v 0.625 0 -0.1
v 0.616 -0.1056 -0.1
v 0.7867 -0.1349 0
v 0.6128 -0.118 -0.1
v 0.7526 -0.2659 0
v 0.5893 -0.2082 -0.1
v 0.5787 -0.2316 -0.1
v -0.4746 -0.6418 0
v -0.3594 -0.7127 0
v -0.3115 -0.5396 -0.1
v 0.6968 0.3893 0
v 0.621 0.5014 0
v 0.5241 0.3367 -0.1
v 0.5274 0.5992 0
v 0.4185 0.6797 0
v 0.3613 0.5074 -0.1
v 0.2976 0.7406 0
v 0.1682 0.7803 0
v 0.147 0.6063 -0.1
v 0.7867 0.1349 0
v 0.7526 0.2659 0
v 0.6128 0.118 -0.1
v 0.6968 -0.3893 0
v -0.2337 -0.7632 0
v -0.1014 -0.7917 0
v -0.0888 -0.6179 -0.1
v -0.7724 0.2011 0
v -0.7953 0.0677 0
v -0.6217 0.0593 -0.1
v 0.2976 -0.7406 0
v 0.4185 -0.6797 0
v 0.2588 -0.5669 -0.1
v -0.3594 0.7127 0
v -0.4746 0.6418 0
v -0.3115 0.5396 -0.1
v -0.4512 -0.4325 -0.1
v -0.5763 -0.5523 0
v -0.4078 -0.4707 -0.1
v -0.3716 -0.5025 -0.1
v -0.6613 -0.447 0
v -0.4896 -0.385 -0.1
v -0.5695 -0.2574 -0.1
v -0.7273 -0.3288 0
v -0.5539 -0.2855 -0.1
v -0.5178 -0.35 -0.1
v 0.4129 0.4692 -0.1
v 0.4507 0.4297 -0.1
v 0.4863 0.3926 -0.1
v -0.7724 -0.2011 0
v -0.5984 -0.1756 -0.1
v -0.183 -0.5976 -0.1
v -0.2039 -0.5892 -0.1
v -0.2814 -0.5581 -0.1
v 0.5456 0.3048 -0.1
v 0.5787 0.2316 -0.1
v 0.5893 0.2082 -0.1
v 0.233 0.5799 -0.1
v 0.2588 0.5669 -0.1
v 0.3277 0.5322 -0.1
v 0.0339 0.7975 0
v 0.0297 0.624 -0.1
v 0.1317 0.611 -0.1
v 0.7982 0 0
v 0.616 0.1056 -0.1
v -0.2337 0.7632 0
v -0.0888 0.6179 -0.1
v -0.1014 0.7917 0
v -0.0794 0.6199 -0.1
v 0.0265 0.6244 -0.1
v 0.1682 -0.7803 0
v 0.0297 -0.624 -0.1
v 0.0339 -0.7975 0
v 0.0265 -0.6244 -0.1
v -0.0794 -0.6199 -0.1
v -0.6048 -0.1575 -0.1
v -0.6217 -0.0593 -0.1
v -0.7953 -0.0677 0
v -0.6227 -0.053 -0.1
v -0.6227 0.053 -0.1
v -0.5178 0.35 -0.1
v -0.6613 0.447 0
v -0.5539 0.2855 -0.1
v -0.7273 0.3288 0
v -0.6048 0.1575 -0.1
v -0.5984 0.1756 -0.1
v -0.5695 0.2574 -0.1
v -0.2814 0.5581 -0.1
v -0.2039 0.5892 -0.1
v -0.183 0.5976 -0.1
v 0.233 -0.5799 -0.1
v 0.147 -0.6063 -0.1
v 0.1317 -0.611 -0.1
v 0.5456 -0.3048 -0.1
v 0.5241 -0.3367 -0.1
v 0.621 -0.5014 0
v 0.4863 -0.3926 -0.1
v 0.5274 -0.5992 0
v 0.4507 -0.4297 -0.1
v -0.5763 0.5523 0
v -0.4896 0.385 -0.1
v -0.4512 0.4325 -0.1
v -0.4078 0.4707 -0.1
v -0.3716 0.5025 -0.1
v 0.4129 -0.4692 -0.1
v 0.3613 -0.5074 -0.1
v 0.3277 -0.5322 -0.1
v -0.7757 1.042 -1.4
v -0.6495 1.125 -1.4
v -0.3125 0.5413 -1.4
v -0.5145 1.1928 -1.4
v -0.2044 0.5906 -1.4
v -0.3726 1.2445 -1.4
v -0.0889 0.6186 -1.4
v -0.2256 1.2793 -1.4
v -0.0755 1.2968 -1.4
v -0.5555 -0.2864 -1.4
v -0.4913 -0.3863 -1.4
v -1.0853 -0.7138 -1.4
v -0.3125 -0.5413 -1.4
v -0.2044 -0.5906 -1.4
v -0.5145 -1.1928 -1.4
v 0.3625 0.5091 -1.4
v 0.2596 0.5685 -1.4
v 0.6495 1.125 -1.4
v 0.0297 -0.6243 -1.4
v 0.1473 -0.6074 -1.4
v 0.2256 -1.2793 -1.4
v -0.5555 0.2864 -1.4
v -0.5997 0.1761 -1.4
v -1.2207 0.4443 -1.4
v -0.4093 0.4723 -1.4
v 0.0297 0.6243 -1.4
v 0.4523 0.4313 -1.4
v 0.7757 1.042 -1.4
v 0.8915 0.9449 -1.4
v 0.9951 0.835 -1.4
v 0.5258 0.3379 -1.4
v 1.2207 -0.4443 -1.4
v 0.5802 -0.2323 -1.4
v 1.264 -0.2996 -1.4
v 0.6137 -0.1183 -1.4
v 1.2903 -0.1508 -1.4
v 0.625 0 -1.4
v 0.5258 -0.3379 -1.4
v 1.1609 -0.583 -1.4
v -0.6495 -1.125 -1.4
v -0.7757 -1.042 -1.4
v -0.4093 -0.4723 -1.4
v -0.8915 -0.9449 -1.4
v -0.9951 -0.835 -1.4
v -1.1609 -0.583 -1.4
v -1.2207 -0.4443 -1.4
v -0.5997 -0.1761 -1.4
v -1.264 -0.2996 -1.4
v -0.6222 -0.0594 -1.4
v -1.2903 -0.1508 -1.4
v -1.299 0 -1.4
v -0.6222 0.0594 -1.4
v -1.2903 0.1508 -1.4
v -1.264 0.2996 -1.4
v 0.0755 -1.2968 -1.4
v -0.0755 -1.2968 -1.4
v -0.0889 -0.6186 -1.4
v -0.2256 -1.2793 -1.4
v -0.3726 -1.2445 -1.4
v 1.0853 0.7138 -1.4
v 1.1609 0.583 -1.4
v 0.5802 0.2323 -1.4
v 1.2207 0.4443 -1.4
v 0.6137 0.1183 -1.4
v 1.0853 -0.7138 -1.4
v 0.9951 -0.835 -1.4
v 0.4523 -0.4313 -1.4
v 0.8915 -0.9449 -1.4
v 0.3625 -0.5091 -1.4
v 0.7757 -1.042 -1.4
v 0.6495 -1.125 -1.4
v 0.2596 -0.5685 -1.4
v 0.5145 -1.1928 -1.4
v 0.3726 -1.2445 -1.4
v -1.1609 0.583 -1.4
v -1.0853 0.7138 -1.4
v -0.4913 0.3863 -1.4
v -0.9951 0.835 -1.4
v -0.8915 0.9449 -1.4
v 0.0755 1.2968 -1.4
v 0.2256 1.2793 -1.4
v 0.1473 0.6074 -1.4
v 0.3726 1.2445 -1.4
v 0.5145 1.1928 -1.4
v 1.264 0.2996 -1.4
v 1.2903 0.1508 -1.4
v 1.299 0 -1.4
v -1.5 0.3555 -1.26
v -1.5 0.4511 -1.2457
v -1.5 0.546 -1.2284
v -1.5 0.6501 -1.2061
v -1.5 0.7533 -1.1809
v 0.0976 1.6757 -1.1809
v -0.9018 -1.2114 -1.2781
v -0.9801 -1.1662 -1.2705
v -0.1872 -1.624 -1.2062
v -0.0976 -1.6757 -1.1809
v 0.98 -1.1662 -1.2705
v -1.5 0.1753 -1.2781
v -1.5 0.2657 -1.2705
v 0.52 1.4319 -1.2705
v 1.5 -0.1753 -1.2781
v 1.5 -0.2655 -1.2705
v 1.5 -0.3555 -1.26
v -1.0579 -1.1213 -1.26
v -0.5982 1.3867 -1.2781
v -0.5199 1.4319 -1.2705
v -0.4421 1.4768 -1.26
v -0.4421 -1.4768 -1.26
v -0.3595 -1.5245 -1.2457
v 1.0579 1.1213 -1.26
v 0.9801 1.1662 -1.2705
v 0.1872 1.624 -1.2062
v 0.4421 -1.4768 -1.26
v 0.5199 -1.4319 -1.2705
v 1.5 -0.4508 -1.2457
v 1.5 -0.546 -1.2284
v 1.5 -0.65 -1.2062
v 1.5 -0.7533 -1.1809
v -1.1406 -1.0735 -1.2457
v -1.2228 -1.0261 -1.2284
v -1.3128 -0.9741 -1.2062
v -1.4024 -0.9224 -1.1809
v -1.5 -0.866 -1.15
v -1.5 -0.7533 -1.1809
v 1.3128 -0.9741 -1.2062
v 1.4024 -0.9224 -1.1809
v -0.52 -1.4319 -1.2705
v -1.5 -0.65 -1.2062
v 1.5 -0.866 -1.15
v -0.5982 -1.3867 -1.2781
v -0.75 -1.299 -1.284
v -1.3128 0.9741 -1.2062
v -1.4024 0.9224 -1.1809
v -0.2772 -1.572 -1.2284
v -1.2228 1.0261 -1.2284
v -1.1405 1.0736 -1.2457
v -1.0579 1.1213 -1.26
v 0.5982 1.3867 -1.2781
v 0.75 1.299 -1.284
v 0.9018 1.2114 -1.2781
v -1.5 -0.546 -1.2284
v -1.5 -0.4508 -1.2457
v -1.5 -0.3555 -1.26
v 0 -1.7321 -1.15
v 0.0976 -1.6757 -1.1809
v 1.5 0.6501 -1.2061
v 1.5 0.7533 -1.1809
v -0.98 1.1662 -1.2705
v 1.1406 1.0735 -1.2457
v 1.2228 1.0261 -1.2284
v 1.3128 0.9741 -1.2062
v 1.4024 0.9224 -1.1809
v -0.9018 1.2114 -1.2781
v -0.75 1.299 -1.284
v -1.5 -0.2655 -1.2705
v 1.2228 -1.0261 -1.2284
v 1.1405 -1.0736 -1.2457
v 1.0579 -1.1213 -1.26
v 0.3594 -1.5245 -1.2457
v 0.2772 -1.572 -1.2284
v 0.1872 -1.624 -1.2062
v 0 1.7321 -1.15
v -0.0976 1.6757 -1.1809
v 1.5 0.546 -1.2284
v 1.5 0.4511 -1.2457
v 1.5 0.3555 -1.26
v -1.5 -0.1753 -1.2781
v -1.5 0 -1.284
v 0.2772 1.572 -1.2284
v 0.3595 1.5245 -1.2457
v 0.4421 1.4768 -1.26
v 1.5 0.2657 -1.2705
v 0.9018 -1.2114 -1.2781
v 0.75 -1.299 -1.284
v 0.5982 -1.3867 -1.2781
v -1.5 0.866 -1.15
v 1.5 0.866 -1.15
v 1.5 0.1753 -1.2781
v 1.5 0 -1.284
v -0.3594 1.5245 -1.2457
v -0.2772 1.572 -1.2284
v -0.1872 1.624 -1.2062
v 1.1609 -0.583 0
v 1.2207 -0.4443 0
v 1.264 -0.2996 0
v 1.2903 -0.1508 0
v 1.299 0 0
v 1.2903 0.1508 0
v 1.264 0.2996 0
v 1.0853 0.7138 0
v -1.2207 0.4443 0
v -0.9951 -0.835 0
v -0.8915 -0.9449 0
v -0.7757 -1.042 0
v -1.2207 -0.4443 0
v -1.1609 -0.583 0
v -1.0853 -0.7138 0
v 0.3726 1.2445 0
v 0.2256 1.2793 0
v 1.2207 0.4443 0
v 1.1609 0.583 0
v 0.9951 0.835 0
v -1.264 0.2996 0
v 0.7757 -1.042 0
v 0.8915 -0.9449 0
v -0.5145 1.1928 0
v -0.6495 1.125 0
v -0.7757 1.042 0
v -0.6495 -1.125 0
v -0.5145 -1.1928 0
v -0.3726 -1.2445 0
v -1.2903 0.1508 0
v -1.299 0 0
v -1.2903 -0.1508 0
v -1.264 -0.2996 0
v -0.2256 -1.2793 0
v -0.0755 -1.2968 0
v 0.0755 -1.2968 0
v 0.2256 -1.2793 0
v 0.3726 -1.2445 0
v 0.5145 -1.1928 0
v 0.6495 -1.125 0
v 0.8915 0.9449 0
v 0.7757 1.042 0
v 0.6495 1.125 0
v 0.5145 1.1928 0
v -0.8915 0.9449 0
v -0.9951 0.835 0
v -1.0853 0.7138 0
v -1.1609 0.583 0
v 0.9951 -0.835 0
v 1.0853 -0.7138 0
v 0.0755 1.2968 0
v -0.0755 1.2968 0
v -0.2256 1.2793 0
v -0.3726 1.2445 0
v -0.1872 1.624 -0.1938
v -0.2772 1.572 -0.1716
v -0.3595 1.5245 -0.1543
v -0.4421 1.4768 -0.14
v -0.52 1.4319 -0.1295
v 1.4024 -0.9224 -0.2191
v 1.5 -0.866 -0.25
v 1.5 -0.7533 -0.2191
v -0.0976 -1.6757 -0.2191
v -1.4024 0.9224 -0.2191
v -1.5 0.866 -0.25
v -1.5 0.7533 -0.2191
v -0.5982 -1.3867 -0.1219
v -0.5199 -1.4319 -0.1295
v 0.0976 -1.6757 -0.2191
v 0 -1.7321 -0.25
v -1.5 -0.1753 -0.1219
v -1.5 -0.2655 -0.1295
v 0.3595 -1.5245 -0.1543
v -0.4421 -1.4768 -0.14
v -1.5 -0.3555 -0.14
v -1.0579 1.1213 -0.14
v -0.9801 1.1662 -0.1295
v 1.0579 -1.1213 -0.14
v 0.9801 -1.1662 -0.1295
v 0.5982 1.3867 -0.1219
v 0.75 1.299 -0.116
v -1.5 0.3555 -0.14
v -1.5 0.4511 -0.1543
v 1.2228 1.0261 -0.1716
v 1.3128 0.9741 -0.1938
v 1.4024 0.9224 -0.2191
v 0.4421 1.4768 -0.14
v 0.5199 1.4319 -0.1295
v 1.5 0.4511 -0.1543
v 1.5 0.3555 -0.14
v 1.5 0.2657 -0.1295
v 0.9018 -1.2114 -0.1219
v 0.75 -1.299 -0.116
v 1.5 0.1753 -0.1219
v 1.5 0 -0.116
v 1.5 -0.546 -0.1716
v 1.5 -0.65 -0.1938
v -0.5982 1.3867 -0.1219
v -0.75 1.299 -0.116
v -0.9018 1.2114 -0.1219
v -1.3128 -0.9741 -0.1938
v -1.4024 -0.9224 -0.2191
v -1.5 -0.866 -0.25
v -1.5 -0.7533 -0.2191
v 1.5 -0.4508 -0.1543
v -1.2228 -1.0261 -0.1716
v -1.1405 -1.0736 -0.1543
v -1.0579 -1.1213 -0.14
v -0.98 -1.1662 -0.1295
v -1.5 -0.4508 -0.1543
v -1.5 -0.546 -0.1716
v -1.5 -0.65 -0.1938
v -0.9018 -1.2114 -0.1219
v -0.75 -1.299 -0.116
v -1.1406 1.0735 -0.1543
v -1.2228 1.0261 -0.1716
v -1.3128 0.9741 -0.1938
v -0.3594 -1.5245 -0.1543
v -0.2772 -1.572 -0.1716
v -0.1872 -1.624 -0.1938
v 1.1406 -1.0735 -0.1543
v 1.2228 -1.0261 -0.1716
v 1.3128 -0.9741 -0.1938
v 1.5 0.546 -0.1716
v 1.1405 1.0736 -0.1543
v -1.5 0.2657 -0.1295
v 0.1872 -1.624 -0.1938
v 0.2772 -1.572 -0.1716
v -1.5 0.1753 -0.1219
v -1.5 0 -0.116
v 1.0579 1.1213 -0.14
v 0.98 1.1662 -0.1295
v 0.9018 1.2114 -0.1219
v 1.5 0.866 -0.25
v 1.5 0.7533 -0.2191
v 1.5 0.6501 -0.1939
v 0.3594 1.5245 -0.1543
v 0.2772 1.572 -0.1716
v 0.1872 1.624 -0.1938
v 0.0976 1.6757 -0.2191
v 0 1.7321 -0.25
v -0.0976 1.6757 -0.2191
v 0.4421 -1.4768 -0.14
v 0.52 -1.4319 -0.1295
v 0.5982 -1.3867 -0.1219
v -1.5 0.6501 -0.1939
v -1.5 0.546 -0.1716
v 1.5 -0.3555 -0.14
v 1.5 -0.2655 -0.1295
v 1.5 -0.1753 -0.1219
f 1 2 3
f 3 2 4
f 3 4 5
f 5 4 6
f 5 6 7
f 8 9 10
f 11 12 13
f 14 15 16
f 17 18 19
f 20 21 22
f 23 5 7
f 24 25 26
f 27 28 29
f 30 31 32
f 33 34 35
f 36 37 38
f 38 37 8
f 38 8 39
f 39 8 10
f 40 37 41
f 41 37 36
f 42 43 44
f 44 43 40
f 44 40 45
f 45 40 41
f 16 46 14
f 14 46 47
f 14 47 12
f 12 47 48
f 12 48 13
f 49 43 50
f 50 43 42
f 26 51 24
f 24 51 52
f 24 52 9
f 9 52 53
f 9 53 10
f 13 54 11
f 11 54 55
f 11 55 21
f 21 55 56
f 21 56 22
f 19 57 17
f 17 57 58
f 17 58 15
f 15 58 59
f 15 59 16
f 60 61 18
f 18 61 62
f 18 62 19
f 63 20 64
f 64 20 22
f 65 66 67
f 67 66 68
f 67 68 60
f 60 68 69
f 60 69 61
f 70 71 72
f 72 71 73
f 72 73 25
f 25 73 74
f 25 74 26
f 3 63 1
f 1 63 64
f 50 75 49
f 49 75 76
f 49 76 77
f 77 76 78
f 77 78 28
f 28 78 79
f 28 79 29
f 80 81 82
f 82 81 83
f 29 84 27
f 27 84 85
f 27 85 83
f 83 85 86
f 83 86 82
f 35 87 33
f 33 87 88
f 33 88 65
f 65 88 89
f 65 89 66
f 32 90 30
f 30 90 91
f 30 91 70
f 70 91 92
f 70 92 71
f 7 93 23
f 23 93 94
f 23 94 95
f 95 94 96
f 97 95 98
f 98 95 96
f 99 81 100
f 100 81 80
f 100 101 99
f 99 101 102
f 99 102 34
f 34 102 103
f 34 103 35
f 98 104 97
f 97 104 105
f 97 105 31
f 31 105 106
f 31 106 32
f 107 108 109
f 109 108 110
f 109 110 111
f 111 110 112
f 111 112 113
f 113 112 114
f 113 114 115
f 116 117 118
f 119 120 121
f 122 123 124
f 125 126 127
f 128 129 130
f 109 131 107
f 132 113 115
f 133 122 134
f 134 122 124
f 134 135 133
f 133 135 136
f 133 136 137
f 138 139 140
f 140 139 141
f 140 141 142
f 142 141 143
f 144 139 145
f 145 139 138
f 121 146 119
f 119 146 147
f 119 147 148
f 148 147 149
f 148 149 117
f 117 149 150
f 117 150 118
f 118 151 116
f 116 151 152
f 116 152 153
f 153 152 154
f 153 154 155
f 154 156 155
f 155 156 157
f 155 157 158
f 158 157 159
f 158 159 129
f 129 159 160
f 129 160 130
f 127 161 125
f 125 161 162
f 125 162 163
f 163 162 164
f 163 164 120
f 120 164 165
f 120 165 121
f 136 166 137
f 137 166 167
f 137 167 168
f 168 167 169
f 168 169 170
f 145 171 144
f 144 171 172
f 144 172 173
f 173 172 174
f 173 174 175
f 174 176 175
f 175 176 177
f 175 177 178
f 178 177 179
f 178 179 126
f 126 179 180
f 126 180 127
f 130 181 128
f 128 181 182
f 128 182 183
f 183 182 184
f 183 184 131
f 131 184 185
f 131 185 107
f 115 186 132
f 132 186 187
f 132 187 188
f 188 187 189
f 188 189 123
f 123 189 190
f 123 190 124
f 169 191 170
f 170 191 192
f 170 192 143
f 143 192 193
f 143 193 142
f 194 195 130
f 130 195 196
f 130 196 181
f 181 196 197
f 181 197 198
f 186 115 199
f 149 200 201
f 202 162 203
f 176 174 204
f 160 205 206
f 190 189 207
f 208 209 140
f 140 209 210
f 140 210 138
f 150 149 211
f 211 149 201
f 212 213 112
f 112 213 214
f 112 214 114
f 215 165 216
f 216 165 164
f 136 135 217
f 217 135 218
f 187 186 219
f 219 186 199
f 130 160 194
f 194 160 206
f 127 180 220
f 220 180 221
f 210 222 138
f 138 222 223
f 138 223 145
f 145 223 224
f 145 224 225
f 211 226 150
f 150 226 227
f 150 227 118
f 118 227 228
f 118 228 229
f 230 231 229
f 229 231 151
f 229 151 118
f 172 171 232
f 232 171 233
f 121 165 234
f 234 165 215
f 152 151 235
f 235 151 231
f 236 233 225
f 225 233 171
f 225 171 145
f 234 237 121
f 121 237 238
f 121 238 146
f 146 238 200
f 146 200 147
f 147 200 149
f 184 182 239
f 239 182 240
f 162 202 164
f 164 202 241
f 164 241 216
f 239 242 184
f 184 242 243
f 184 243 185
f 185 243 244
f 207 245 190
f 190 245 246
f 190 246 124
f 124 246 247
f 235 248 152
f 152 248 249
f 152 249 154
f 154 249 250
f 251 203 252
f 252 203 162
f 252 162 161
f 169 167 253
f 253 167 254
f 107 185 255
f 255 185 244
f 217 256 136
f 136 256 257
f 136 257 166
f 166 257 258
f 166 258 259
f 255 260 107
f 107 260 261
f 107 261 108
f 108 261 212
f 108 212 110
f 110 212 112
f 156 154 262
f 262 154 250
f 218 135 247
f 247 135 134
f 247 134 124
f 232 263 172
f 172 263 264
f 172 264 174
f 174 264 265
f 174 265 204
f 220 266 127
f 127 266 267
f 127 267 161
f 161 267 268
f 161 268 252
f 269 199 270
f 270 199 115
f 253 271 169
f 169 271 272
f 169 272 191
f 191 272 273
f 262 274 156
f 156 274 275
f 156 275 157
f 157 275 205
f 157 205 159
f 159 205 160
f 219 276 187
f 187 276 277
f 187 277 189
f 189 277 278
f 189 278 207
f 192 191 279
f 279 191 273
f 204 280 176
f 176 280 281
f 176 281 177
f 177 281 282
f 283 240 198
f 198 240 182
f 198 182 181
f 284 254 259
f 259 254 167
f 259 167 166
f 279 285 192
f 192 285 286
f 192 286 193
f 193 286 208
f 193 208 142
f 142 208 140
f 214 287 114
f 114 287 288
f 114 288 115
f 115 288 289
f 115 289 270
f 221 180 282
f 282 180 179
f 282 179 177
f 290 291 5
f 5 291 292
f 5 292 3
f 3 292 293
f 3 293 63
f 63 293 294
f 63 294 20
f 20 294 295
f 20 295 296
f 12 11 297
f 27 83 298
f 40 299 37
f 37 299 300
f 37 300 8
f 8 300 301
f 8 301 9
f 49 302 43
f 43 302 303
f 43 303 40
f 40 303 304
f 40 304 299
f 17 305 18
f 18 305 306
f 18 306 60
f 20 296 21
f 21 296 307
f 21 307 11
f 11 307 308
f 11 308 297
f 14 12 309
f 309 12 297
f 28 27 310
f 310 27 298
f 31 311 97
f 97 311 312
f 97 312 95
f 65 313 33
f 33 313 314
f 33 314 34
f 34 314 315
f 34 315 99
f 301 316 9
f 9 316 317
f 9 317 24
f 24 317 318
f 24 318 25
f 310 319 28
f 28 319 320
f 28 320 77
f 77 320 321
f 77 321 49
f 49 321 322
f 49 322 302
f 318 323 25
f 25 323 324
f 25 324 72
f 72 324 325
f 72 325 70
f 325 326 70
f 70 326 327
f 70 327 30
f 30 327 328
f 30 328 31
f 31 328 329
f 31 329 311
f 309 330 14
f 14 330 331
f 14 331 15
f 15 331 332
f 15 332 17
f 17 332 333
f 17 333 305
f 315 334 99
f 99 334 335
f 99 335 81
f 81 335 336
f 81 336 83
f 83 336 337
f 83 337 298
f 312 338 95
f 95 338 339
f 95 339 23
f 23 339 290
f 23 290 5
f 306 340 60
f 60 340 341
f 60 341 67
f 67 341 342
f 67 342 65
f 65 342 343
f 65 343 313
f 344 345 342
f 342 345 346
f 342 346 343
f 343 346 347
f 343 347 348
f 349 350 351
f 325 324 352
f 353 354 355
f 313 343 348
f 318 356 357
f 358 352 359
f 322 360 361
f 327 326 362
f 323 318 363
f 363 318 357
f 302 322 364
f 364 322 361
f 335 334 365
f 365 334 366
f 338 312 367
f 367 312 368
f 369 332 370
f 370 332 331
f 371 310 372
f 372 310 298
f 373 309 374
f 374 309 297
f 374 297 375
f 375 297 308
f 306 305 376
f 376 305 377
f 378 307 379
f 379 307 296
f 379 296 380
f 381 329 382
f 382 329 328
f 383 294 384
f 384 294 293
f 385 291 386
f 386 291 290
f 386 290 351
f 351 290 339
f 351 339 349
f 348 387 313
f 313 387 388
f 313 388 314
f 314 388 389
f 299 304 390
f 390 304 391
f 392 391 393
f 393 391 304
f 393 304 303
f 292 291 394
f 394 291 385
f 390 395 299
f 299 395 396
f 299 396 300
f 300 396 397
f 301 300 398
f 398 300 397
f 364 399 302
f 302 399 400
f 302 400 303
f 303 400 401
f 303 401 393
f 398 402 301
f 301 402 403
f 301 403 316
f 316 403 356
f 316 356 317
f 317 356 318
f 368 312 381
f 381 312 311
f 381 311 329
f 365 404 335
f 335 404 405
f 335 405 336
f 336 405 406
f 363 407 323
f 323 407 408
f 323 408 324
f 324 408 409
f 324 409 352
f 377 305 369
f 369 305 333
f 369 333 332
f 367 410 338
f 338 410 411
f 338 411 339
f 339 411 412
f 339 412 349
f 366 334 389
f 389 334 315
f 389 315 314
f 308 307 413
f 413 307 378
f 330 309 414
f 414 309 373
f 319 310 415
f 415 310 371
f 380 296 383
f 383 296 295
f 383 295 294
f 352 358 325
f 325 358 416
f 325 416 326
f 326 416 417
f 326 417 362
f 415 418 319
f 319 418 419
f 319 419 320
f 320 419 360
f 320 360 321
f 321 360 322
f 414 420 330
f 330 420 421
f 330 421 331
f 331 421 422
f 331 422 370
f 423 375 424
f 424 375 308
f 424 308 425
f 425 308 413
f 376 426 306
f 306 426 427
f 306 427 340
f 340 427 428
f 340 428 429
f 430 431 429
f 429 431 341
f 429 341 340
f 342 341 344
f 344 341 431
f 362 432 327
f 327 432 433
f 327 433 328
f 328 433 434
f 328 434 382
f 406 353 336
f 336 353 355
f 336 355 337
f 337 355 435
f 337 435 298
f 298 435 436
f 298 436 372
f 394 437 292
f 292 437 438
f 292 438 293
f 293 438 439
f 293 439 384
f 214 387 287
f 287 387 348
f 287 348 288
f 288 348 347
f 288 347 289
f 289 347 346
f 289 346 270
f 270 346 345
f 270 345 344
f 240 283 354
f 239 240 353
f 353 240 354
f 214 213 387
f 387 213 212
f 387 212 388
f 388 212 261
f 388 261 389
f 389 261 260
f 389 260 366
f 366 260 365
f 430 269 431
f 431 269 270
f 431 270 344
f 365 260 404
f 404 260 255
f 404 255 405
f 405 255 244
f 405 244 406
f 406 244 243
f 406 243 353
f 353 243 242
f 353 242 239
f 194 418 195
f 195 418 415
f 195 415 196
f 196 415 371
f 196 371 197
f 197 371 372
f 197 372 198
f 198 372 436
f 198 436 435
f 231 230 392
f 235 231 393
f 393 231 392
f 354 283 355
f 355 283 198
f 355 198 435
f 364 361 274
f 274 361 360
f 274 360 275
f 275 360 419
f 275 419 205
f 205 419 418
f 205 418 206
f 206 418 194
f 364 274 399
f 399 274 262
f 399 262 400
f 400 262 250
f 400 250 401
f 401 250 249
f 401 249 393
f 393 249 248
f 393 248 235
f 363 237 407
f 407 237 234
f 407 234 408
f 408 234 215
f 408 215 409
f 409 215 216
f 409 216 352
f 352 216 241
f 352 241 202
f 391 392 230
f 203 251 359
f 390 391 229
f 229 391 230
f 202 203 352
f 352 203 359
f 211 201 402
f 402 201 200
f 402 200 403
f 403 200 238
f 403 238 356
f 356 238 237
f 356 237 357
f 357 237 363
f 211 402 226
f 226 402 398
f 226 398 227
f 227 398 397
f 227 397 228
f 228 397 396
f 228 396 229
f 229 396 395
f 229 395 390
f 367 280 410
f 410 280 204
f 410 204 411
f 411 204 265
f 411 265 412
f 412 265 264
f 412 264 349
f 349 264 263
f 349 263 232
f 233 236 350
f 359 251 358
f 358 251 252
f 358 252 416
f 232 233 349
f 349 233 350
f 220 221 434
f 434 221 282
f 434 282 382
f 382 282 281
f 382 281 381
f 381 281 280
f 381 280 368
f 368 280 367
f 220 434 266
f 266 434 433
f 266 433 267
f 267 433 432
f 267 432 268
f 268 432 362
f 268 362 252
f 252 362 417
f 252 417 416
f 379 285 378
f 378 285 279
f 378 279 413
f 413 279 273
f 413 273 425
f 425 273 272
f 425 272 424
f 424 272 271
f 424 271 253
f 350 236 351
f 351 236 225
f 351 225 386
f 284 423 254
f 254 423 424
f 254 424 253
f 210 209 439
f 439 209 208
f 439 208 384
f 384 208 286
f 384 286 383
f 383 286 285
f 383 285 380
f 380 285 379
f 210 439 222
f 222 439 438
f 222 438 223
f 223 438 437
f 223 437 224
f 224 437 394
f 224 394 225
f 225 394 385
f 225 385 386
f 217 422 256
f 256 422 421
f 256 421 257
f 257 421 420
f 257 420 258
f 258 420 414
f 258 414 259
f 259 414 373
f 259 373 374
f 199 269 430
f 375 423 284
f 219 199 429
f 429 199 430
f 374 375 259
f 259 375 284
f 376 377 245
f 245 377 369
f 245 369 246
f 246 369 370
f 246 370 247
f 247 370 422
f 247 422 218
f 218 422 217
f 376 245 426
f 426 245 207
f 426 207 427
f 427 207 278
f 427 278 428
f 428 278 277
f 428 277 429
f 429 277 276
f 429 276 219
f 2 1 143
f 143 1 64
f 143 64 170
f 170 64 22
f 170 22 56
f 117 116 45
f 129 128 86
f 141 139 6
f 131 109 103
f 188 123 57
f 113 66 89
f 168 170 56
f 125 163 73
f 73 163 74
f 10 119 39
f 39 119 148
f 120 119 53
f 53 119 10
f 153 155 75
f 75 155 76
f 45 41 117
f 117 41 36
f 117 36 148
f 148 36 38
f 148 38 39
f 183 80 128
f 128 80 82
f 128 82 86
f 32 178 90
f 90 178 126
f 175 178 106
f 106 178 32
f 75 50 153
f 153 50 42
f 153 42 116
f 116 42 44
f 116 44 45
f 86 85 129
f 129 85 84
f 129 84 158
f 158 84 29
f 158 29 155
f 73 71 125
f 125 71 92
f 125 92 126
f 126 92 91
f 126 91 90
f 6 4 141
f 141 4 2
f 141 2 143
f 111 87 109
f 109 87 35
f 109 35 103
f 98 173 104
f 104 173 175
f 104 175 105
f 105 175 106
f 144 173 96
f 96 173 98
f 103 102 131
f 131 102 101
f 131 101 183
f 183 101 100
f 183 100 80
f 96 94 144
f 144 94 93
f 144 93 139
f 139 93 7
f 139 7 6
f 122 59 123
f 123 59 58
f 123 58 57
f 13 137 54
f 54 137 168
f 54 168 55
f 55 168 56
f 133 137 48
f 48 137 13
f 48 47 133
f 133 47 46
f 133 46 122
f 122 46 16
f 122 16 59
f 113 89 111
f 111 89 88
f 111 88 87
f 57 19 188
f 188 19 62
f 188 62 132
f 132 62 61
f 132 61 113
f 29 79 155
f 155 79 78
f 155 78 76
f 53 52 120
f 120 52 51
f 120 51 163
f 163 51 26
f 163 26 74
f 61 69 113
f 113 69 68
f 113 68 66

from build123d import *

# Parameters (mm, degrees)
BOSS_EXTRUDE1_DEPTH = 1.4
M1_7_TAPPED_HOLE1_D = 1.25
CHAMFER1_SIZE       = 0.1
CHAMFER1_SIZE2      = 0.173205081


with BuildPart() as part:
    # Sketch1 → Boss-Extrude1 (new body)
    with BuildSketch(Plane.XY):
        Polygon((0, 1.732050808), (-1.5, 0.866025404), (-1.5, -0.866025404), (0, -1.732050808), (1.5, -0.866025404), (1.5, 0.866025404), align=None)
    extrude(amount=-BOSS_EXTRUDE1_DEPTH)

    # Sketch2 → Cut-Revolve1 (revolve, cut)
    with BuildSketch(Plane(origin=(0, 0, 0), x_dir=(0, 0, -1), z_dir=(1, 0, 0))):
        Polygon((0, -1.299038106), (0.25, -1.732050808), (0, -1.732050808), align=None)
        Polygon((1.4, -1.732050808), (1.4, -1.299038106), (1.15, -1.732050808), align=None)
    revolve(axis=Axis((0, 0, 0), (0, 0, -1)), mode=Mode.SUBTRACT)

    # M1.7 Tapped Hole1 (through all)
    with Locations(Plane.XY):
        with Locations((0, 0)):
            Hole(M1_7_TAPPED_HOLE1_D / 2)

    # Chamfer1
    chamfer1_edges = [part.edges().sort_by_distance(p)[0] for p in [
        (0.625, 0, 0),
    ]]
    chamfer1_side = [part.faces().sort_by_distance(p)[0] for p in [
        (0.625, 0, -0.7),
    ]]
    chamfer(chamfer1_edges, length=CHAMFER1_SIZE, length2=CHAMFER1_SIZE2, reference=chamfer1_side[0])


solid = part.part
